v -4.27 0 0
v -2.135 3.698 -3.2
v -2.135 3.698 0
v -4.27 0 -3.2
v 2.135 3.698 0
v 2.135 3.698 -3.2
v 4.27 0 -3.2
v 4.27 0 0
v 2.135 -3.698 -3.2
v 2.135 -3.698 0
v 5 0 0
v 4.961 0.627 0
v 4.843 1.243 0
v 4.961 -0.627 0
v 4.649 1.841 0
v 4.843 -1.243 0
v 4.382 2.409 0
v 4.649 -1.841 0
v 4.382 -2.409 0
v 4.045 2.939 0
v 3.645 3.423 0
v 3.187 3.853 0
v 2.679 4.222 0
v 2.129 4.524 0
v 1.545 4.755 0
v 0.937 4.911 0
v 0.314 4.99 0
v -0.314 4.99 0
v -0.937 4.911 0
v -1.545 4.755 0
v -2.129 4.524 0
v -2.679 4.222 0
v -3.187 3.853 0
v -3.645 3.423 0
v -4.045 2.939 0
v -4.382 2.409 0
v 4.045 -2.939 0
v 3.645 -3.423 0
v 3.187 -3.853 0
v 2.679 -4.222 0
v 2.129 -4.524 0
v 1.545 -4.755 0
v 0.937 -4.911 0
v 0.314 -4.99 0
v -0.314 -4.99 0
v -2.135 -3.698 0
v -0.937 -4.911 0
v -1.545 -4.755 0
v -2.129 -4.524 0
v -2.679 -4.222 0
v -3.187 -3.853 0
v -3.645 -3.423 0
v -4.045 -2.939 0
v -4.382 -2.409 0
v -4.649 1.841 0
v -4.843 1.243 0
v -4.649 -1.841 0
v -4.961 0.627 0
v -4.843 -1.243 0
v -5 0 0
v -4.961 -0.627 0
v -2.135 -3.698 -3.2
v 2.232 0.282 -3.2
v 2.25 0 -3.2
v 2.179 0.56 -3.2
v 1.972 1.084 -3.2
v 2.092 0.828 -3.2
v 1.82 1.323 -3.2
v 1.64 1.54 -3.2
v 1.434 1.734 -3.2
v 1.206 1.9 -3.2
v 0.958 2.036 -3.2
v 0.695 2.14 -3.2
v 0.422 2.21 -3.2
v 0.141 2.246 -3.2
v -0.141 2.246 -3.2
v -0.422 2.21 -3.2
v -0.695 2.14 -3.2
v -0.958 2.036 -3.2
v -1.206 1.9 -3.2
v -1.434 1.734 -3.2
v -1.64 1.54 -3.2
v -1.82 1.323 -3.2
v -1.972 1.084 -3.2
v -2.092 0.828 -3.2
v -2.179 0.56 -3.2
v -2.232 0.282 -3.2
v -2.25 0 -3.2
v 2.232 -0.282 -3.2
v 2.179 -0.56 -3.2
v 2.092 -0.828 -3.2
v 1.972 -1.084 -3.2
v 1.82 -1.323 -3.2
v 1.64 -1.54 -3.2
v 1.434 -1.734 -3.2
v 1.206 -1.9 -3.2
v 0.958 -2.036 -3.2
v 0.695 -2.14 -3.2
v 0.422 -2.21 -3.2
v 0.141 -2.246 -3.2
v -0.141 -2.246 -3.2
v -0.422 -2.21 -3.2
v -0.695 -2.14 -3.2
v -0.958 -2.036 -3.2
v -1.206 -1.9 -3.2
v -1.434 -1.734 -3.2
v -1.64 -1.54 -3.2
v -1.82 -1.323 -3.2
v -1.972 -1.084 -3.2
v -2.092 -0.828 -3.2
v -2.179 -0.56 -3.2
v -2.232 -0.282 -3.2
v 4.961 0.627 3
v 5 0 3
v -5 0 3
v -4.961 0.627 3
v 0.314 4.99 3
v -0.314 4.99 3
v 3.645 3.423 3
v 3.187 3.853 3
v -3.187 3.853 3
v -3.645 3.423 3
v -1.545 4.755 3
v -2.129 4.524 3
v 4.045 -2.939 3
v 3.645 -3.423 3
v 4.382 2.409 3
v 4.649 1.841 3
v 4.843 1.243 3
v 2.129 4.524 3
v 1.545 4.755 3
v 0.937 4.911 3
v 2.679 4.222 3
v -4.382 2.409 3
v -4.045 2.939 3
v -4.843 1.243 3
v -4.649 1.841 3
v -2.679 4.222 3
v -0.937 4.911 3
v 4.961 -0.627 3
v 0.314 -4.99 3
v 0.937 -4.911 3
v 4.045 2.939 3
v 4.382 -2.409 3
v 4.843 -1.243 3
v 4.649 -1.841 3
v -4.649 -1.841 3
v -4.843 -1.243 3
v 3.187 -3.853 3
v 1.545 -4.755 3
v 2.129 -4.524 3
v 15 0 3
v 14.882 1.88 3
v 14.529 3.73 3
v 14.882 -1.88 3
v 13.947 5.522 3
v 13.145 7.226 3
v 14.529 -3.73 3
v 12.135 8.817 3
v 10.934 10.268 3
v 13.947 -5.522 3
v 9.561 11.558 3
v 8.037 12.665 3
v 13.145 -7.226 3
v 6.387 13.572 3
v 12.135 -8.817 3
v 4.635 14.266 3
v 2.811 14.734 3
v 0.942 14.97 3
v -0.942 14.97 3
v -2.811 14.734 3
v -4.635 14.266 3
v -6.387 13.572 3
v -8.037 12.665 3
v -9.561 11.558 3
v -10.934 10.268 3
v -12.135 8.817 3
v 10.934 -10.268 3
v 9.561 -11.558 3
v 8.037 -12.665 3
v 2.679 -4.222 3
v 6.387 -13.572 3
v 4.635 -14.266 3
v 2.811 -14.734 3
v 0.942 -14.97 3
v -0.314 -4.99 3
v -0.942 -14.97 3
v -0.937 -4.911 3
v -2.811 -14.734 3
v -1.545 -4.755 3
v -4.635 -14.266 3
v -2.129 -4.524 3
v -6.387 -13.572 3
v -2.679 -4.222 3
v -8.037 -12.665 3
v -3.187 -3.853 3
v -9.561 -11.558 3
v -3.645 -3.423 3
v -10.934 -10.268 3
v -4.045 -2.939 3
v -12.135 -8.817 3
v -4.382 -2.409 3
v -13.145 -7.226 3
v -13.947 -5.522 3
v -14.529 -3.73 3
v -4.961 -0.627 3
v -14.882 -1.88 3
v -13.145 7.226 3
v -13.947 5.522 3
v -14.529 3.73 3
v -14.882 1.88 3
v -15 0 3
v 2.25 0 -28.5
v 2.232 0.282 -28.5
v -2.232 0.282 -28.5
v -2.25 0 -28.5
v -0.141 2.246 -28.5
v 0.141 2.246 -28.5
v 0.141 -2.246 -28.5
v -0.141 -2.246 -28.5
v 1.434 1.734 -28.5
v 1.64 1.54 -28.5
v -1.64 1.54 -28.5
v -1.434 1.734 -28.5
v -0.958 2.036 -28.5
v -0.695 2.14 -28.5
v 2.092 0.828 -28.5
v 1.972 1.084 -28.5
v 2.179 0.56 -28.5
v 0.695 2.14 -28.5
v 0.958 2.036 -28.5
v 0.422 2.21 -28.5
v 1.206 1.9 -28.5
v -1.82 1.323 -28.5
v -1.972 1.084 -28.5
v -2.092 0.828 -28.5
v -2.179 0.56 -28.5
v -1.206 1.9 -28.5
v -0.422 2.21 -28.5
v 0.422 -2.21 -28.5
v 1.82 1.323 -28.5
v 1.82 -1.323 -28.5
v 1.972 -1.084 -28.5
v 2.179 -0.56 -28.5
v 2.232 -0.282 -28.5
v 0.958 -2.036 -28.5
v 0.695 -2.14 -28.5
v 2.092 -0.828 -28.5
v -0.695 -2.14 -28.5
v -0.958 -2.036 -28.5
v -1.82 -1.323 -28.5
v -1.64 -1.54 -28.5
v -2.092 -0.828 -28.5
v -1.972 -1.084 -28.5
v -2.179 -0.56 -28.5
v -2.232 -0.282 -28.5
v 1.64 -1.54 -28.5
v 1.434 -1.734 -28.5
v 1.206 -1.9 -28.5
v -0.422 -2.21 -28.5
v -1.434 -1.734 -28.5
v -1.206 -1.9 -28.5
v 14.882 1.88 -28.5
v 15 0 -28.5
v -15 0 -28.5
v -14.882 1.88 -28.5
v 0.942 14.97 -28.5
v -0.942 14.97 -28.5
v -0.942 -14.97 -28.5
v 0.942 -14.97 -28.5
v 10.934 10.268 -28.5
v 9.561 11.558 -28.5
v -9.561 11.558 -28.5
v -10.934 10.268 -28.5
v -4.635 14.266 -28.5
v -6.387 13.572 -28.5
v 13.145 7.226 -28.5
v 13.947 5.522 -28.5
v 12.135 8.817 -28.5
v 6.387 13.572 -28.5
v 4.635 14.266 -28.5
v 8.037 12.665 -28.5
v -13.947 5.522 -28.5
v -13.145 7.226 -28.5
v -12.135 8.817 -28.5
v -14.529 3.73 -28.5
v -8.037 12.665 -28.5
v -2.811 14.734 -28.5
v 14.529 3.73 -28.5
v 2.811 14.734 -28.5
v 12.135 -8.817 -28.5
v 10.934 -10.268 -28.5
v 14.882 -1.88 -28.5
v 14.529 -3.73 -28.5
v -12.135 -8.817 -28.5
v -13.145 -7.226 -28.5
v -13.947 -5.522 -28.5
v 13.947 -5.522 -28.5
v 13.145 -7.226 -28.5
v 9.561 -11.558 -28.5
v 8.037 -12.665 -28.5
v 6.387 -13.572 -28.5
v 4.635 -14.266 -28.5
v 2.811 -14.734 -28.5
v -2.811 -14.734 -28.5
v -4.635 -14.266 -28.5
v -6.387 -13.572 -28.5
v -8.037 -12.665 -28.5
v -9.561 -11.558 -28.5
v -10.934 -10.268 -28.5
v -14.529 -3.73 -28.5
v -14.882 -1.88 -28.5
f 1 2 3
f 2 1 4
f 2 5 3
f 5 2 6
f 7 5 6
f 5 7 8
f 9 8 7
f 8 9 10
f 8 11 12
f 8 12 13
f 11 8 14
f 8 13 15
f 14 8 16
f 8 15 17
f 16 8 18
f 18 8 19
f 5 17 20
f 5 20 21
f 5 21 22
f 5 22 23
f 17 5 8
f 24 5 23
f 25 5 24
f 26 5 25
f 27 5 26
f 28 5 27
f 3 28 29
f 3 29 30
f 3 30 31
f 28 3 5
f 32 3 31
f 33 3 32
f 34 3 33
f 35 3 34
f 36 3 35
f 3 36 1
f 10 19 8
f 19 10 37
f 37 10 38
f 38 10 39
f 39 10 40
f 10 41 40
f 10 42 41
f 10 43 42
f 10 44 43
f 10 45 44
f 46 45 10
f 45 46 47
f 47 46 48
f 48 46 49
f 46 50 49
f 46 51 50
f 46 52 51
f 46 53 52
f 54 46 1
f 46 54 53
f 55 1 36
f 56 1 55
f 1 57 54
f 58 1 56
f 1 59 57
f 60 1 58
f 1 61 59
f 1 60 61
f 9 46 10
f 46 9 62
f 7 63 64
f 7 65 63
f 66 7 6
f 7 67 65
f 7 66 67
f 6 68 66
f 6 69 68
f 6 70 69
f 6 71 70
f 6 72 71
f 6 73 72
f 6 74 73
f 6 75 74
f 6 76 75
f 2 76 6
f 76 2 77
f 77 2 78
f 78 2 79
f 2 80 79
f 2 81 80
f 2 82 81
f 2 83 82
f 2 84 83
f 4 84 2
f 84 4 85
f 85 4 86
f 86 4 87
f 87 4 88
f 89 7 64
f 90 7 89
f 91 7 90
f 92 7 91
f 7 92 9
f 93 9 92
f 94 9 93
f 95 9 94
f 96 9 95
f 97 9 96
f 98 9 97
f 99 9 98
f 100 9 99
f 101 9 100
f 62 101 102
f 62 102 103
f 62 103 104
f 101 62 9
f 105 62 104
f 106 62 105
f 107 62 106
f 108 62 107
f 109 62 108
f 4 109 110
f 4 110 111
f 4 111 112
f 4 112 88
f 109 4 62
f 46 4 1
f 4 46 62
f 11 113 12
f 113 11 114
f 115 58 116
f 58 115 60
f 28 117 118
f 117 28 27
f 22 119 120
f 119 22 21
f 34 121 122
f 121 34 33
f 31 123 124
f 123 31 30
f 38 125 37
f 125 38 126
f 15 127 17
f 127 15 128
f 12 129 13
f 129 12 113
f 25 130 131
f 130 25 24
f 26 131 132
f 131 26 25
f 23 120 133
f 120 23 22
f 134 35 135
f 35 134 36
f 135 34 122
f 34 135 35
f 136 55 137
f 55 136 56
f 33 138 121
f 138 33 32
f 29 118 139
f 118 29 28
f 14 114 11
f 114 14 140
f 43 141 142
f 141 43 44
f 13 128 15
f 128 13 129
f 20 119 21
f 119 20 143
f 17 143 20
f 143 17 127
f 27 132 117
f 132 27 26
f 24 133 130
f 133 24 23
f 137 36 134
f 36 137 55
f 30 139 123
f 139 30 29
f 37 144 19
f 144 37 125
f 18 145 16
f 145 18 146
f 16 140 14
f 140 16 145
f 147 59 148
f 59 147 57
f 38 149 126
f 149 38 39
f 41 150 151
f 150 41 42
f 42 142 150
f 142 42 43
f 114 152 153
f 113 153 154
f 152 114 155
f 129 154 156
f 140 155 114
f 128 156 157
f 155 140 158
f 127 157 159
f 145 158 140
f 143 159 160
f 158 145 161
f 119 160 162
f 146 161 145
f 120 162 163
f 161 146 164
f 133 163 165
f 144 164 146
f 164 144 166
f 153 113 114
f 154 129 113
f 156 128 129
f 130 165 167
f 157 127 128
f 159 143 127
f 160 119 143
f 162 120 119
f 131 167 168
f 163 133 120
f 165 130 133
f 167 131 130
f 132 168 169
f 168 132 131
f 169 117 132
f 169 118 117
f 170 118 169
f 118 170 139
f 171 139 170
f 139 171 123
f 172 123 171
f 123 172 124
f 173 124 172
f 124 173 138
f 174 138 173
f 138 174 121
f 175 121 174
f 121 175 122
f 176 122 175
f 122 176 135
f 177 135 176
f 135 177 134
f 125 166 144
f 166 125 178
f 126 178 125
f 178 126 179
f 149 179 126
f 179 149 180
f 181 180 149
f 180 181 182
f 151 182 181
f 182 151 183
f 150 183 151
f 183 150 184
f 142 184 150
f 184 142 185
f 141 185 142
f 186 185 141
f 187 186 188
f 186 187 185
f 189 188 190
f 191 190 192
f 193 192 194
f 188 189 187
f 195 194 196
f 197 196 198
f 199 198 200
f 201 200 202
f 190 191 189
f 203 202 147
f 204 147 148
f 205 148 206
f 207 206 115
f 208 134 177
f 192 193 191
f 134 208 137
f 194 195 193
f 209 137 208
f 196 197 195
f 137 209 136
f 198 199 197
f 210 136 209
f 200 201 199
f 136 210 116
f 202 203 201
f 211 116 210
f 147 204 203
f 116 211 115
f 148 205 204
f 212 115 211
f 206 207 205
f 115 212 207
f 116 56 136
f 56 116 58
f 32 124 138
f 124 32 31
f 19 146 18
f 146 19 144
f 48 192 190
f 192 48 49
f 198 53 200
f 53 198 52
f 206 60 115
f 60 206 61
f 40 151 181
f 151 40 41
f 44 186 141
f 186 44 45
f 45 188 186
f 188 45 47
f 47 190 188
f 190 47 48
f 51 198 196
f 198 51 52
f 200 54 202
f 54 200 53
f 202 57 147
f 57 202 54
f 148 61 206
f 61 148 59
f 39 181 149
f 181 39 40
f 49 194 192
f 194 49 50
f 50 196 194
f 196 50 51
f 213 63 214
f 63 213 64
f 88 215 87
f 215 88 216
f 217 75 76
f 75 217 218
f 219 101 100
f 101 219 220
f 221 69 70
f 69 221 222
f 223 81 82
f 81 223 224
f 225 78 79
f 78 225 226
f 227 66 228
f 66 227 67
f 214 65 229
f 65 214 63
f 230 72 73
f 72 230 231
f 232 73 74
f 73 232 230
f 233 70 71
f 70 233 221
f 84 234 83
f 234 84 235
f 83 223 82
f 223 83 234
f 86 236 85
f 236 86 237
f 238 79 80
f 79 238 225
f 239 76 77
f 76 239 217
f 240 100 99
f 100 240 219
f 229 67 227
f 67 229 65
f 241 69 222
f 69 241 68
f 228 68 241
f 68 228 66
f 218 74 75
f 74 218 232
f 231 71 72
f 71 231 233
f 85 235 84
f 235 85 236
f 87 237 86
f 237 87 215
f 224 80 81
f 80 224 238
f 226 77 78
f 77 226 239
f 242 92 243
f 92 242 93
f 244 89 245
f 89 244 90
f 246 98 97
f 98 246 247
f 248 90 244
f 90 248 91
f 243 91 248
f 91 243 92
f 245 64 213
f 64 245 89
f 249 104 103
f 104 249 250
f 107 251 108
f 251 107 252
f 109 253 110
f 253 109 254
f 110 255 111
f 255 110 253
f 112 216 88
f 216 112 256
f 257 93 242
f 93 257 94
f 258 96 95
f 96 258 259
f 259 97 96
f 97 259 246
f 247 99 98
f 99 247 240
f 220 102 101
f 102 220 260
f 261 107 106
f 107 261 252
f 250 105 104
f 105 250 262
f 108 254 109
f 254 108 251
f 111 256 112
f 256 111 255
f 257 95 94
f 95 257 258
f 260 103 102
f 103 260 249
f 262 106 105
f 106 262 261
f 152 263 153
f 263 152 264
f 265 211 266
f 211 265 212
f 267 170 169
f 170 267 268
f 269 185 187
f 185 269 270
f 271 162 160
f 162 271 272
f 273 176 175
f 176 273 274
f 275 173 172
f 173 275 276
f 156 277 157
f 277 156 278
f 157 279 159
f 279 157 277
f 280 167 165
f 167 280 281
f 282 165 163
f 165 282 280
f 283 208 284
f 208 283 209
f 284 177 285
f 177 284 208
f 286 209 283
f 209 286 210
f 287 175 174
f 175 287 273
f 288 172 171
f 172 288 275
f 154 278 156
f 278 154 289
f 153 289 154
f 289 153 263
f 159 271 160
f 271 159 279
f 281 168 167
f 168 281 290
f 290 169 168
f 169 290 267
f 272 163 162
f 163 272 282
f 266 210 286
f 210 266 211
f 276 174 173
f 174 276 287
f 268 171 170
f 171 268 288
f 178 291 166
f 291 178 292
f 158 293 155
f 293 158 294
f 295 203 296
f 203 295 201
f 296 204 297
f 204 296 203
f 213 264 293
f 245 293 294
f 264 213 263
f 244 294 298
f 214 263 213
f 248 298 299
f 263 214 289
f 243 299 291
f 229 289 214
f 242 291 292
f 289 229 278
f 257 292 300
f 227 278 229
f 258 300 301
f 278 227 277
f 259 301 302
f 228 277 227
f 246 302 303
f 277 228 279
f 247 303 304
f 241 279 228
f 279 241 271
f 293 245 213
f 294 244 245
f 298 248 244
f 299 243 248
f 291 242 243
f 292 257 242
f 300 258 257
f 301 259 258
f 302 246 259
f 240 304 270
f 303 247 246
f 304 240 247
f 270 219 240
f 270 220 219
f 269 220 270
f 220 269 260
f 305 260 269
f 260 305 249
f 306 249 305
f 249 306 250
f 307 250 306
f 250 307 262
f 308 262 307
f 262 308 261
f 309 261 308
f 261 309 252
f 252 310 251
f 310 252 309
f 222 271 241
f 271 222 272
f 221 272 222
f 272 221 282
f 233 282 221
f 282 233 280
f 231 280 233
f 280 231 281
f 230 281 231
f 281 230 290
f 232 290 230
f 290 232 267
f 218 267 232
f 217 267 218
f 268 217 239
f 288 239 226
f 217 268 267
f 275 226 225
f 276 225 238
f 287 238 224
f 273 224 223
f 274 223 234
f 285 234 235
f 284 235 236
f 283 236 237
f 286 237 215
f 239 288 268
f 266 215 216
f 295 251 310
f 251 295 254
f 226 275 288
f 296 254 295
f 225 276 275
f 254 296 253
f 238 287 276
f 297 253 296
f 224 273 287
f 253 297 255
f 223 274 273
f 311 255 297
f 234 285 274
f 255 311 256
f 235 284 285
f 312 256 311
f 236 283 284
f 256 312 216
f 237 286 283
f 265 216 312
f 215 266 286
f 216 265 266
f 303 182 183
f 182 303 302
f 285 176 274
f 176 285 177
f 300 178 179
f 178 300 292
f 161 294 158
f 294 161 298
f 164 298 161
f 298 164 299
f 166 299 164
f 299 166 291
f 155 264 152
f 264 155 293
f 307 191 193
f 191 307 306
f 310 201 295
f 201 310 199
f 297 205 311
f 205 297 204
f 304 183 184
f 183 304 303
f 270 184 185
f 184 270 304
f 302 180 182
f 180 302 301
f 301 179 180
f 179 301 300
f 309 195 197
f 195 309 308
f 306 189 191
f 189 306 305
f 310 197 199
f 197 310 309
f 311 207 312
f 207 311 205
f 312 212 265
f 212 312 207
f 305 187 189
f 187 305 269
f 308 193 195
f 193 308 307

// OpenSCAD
$fn = 50;

difference() {
	union() {
		translate(v = [0, 0, -28.5]) {
			cylinder(h = 31.5, r = 15.0);
		}
	}
	union() {
		translate(v = [0, 0, 0]) {
			rotate(a = [0, 0, 0]) {
				difference() {
					union() {
						translate(v = [0, 0, -3.2]) {
							linear_extrude(height = 3.2) {
								polygon(points = [[4.2698, 0.0], [2.1349000000000005, 3.697755269078796], [-2.134899999999999, 3.6977552690787965], [-4.2698, 5.228996902999369e-16], [-2.134900000000002, -3.6977552690787956], [2.1348999999999974, -3.697755269078798]]);
							}
						}
					}
					union();
				}
			}
		}
		#cylinder(h = 3, r = 5.0);
		#translate(v = [0, 0, -100.0]) {
			cylinder(h = 200, r = 2.25);
		}
	}
}
